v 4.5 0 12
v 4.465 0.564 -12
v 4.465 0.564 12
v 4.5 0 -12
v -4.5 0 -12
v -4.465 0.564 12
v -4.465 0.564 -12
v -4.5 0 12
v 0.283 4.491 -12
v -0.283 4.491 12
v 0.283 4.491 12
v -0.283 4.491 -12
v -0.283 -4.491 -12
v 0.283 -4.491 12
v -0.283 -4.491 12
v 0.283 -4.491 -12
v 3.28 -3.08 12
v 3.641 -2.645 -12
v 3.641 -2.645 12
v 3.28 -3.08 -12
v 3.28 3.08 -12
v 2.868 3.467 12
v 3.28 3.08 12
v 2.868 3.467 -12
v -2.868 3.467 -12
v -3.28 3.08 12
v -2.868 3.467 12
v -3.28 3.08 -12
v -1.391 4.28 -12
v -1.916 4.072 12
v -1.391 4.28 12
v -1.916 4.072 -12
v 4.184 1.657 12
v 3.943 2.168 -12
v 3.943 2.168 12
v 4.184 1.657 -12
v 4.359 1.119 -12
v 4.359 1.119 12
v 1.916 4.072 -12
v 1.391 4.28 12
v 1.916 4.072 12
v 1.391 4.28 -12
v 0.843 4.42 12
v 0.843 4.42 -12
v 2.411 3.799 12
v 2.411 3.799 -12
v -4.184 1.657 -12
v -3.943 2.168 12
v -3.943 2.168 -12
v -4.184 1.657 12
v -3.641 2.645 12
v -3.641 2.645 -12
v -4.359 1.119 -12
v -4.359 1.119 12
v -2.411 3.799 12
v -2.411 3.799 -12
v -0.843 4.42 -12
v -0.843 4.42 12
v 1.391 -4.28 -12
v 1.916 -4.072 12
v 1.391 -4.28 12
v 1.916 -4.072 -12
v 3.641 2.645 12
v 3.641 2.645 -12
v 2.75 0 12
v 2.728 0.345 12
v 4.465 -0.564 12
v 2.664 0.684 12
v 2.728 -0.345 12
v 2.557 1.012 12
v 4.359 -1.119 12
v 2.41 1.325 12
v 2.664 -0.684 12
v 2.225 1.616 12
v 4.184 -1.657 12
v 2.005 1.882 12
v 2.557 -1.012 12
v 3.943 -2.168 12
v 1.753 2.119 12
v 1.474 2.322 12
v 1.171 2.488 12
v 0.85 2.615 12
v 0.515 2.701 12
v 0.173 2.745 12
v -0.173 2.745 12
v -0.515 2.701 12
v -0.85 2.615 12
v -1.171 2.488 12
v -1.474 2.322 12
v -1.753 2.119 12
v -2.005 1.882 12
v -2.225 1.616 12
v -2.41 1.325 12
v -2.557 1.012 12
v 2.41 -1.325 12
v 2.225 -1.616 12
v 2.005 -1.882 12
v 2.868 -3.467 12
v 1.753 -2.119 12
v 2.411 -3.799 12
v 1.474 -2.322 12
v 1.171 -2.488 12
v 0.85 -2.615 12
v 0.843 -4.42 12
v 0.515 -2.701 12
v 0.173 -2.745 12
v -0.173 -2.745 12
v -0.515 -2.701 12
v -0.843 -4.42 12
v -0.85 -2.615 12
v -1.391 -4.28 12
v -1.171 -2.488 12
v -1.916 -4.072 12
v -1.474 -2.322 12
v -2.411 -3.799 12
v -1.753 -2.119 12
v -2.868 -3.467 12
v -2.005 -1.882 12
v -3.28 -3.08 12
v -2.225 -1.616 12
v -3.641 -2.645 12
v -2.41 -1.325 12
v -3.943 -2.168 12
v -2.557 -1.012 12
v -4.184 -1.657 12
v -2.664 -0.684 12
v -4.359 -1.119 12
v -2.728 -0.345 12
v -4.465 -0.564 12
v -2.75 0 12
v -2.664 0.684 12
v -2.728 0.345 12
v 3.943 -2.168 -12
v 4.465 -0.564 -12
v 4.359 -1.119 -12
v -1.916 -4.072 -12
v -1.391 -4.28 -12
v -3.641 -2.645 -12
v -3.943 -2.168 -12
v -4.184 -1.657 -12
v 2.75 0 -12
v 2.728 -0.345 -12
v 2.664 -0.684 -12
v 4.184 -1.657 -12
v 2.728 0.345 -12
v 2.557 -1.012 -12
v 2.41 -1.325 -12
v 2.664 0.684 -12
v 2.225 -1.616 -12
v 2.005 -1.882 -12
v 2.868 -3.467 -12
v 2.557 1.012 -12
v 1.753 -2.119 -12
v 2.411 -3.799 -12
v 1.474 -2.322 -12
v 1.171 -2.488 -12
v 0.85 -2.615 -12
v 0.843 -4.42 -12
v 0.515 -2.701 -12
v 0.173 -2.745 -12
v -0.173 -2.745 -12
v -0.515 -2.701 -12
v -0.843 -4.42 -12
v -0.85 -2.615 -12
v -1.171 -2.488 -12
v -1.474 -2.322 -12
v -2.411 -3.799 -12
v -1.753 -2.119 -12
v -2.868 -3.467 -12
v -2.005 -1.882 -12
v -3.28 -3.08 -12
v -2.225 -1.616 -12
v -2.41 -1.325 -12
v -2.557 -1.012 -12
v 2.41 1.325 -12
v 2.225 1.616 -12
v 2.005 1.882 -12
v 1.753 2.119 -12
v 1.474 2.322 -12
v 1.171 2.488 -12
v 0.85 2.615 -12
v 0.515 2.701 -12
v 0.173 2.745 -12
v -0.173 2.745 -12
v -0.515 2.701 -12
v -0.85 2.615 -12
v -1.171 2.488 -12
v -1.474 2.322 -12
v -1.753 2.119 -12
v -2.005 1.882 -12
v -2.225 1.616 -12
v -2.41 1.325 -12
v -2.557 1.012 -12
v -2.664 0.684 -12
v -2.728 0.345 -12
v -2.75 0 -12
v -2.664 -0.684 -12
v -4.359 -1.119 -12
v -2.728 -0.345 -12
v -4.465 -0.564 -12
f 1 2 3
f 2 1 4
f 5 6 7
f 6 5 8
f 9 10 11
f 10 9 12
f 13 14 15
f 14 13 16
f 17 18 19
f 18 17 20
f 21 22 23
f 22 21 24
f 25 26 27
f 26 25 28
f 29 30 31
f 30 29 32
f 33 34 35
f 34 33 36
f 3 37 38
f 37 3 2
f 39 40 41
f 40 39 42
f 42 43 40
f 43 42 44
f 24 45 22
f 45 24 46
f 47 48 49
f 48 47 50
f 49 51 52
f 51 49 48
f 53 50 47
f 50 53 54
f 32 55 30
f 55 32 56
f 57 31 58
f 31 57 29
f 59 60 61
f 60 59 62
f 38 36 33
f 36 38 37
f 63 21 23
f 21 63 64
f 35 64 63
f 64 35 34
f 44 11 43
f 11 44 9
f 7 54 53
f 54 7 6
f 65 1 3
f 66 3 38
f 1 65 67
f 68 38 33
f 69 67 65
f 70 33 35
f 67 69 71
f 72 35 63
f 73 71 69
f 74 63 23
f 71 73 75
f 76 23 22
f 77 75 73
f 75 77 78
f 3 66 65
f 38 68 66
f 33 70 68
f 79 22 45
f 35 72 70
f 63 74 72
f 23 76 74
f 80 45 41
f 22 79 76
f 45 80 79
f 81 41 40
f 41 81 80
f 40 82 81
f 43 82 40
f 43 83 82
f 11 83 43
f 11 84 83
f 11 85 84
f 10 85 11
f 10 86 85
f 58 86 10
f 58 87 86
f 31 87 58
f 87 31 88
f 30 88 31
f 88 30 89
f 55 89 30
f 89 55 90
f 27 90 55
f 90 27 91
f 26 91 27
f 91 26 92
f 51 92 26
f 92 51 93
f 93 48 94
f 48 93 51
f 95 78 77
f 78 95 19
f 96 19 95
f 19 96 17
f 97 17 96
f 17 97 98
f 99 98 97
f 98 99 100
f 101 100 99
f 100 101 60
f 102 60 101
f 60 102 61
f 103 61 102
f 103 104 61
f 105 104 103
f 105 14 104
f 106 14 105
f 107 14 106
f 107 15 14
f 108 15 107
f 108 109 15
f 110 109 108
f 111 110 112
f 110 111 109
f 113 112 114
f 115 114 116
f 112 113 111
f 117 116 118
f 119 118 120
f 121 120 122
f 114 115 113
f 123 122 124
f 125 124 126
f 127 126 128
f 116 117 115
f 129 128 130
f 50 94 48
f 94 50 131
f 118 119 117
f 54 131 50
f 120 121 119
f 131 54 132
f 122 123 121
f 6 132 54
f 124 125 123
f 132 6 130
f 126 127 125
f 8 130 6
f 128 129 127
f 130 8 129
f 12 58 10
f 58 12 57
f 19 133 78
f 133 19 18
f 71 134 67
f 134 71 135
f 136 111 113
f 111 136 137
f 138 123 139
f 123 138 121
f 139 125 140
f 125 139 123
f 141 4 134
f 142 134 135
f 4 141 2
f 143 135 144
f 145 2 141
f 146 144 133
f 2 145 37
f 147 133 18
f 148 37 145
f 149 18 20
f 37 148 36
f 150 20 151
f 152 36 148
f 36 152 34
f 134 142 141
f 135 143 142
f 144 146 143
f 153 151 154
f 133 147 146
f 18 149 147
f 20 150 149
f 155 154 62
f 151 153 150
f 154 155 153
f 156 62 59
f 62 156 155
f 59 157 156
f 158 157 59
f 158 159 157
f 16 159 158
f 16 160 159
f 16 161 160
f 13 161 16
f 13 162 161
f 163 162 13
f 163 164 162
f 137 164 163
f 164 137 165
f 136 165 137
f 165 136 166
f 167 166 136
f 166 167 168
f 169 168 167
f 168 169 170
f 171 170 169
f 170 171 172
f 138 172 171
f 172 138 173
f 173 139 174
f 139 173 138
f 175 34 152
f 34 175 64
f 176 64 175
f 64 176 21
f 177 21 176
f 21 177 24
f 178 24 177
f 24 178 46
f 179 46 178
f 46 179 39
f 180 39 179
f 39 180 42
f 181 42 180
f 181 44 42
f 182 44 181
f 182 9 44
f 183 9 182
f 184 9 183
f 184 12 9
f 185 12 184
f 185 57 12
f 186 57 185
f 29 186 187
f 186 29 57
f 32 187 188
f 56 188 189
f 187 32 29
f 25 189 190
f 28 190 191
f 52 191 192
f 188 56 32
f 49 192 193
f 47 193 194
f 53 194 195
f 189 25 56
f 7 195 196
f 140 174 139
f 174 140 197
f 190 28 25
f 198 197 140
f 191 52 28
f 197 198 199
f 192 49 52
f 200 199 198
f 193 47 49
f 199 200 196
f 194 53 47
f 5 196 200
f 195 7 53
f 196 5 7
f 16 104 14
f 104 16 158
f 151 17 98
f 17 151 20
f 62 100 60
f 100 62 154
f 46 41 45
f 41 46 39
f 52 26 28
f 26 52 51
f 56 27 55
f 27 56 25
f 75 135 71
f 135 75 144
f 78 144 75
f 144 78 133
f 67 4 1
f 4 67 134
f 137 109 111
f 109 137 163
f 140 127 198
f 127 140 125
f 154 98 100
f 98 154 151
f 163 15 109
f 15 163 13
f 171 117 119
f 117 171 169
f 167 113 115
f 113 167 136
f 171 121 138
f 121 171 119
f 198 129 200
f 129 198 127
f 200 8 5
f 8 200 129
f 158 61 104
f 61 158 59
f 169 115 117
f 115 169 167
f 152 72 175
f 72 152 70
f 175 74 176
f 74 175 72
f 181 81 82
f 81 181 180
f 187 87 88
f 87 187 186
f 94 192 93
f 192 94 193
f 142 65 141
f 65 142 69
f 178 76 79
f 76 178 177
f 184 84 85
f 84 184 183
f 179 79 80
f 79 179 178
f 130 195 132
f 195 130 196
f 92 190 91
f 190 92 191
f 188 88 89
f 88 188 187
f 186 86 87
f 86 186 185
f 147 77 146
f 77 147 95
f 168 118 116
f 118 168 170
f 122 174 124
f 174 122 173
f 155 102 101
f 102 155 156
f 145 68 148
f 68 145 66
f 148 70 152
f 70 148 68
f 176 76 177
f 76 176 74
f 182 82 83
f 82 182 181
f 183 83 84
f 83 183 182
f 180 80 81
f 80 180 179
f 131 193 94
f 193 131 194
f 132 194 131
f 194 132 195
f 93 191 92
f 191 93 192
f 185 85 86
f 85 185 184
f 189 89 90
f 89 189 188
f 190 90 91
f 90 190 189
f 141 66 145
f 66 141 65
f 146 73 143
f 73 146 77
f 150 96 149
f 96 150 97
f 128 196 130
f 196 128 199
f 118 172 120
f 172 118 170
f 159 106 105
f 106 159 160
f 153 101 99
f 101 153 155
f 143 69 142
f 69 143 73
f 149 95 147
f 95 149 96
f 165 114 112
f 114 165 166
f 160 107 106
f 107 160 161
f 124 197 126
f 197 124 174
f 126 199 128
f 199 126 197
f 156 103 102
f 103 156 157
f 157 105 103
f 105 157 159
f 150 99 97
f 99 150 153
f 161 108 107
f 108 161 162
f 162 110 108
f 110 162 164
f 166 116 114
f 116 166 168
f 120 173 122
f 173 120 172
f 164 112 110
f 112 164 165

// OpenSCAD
$fn = 50;


difference() {
	union() {
		translate(v = [0, 0, -12.0000000000]) {
			cylinder(h = 24, r = 4.5000000000);
		}
	}
	union() {
		translate(v = [0, 0, -100.0000000000]) {
			cylinder(h = 200, r = 2.7500000000);
		}
	}
}
